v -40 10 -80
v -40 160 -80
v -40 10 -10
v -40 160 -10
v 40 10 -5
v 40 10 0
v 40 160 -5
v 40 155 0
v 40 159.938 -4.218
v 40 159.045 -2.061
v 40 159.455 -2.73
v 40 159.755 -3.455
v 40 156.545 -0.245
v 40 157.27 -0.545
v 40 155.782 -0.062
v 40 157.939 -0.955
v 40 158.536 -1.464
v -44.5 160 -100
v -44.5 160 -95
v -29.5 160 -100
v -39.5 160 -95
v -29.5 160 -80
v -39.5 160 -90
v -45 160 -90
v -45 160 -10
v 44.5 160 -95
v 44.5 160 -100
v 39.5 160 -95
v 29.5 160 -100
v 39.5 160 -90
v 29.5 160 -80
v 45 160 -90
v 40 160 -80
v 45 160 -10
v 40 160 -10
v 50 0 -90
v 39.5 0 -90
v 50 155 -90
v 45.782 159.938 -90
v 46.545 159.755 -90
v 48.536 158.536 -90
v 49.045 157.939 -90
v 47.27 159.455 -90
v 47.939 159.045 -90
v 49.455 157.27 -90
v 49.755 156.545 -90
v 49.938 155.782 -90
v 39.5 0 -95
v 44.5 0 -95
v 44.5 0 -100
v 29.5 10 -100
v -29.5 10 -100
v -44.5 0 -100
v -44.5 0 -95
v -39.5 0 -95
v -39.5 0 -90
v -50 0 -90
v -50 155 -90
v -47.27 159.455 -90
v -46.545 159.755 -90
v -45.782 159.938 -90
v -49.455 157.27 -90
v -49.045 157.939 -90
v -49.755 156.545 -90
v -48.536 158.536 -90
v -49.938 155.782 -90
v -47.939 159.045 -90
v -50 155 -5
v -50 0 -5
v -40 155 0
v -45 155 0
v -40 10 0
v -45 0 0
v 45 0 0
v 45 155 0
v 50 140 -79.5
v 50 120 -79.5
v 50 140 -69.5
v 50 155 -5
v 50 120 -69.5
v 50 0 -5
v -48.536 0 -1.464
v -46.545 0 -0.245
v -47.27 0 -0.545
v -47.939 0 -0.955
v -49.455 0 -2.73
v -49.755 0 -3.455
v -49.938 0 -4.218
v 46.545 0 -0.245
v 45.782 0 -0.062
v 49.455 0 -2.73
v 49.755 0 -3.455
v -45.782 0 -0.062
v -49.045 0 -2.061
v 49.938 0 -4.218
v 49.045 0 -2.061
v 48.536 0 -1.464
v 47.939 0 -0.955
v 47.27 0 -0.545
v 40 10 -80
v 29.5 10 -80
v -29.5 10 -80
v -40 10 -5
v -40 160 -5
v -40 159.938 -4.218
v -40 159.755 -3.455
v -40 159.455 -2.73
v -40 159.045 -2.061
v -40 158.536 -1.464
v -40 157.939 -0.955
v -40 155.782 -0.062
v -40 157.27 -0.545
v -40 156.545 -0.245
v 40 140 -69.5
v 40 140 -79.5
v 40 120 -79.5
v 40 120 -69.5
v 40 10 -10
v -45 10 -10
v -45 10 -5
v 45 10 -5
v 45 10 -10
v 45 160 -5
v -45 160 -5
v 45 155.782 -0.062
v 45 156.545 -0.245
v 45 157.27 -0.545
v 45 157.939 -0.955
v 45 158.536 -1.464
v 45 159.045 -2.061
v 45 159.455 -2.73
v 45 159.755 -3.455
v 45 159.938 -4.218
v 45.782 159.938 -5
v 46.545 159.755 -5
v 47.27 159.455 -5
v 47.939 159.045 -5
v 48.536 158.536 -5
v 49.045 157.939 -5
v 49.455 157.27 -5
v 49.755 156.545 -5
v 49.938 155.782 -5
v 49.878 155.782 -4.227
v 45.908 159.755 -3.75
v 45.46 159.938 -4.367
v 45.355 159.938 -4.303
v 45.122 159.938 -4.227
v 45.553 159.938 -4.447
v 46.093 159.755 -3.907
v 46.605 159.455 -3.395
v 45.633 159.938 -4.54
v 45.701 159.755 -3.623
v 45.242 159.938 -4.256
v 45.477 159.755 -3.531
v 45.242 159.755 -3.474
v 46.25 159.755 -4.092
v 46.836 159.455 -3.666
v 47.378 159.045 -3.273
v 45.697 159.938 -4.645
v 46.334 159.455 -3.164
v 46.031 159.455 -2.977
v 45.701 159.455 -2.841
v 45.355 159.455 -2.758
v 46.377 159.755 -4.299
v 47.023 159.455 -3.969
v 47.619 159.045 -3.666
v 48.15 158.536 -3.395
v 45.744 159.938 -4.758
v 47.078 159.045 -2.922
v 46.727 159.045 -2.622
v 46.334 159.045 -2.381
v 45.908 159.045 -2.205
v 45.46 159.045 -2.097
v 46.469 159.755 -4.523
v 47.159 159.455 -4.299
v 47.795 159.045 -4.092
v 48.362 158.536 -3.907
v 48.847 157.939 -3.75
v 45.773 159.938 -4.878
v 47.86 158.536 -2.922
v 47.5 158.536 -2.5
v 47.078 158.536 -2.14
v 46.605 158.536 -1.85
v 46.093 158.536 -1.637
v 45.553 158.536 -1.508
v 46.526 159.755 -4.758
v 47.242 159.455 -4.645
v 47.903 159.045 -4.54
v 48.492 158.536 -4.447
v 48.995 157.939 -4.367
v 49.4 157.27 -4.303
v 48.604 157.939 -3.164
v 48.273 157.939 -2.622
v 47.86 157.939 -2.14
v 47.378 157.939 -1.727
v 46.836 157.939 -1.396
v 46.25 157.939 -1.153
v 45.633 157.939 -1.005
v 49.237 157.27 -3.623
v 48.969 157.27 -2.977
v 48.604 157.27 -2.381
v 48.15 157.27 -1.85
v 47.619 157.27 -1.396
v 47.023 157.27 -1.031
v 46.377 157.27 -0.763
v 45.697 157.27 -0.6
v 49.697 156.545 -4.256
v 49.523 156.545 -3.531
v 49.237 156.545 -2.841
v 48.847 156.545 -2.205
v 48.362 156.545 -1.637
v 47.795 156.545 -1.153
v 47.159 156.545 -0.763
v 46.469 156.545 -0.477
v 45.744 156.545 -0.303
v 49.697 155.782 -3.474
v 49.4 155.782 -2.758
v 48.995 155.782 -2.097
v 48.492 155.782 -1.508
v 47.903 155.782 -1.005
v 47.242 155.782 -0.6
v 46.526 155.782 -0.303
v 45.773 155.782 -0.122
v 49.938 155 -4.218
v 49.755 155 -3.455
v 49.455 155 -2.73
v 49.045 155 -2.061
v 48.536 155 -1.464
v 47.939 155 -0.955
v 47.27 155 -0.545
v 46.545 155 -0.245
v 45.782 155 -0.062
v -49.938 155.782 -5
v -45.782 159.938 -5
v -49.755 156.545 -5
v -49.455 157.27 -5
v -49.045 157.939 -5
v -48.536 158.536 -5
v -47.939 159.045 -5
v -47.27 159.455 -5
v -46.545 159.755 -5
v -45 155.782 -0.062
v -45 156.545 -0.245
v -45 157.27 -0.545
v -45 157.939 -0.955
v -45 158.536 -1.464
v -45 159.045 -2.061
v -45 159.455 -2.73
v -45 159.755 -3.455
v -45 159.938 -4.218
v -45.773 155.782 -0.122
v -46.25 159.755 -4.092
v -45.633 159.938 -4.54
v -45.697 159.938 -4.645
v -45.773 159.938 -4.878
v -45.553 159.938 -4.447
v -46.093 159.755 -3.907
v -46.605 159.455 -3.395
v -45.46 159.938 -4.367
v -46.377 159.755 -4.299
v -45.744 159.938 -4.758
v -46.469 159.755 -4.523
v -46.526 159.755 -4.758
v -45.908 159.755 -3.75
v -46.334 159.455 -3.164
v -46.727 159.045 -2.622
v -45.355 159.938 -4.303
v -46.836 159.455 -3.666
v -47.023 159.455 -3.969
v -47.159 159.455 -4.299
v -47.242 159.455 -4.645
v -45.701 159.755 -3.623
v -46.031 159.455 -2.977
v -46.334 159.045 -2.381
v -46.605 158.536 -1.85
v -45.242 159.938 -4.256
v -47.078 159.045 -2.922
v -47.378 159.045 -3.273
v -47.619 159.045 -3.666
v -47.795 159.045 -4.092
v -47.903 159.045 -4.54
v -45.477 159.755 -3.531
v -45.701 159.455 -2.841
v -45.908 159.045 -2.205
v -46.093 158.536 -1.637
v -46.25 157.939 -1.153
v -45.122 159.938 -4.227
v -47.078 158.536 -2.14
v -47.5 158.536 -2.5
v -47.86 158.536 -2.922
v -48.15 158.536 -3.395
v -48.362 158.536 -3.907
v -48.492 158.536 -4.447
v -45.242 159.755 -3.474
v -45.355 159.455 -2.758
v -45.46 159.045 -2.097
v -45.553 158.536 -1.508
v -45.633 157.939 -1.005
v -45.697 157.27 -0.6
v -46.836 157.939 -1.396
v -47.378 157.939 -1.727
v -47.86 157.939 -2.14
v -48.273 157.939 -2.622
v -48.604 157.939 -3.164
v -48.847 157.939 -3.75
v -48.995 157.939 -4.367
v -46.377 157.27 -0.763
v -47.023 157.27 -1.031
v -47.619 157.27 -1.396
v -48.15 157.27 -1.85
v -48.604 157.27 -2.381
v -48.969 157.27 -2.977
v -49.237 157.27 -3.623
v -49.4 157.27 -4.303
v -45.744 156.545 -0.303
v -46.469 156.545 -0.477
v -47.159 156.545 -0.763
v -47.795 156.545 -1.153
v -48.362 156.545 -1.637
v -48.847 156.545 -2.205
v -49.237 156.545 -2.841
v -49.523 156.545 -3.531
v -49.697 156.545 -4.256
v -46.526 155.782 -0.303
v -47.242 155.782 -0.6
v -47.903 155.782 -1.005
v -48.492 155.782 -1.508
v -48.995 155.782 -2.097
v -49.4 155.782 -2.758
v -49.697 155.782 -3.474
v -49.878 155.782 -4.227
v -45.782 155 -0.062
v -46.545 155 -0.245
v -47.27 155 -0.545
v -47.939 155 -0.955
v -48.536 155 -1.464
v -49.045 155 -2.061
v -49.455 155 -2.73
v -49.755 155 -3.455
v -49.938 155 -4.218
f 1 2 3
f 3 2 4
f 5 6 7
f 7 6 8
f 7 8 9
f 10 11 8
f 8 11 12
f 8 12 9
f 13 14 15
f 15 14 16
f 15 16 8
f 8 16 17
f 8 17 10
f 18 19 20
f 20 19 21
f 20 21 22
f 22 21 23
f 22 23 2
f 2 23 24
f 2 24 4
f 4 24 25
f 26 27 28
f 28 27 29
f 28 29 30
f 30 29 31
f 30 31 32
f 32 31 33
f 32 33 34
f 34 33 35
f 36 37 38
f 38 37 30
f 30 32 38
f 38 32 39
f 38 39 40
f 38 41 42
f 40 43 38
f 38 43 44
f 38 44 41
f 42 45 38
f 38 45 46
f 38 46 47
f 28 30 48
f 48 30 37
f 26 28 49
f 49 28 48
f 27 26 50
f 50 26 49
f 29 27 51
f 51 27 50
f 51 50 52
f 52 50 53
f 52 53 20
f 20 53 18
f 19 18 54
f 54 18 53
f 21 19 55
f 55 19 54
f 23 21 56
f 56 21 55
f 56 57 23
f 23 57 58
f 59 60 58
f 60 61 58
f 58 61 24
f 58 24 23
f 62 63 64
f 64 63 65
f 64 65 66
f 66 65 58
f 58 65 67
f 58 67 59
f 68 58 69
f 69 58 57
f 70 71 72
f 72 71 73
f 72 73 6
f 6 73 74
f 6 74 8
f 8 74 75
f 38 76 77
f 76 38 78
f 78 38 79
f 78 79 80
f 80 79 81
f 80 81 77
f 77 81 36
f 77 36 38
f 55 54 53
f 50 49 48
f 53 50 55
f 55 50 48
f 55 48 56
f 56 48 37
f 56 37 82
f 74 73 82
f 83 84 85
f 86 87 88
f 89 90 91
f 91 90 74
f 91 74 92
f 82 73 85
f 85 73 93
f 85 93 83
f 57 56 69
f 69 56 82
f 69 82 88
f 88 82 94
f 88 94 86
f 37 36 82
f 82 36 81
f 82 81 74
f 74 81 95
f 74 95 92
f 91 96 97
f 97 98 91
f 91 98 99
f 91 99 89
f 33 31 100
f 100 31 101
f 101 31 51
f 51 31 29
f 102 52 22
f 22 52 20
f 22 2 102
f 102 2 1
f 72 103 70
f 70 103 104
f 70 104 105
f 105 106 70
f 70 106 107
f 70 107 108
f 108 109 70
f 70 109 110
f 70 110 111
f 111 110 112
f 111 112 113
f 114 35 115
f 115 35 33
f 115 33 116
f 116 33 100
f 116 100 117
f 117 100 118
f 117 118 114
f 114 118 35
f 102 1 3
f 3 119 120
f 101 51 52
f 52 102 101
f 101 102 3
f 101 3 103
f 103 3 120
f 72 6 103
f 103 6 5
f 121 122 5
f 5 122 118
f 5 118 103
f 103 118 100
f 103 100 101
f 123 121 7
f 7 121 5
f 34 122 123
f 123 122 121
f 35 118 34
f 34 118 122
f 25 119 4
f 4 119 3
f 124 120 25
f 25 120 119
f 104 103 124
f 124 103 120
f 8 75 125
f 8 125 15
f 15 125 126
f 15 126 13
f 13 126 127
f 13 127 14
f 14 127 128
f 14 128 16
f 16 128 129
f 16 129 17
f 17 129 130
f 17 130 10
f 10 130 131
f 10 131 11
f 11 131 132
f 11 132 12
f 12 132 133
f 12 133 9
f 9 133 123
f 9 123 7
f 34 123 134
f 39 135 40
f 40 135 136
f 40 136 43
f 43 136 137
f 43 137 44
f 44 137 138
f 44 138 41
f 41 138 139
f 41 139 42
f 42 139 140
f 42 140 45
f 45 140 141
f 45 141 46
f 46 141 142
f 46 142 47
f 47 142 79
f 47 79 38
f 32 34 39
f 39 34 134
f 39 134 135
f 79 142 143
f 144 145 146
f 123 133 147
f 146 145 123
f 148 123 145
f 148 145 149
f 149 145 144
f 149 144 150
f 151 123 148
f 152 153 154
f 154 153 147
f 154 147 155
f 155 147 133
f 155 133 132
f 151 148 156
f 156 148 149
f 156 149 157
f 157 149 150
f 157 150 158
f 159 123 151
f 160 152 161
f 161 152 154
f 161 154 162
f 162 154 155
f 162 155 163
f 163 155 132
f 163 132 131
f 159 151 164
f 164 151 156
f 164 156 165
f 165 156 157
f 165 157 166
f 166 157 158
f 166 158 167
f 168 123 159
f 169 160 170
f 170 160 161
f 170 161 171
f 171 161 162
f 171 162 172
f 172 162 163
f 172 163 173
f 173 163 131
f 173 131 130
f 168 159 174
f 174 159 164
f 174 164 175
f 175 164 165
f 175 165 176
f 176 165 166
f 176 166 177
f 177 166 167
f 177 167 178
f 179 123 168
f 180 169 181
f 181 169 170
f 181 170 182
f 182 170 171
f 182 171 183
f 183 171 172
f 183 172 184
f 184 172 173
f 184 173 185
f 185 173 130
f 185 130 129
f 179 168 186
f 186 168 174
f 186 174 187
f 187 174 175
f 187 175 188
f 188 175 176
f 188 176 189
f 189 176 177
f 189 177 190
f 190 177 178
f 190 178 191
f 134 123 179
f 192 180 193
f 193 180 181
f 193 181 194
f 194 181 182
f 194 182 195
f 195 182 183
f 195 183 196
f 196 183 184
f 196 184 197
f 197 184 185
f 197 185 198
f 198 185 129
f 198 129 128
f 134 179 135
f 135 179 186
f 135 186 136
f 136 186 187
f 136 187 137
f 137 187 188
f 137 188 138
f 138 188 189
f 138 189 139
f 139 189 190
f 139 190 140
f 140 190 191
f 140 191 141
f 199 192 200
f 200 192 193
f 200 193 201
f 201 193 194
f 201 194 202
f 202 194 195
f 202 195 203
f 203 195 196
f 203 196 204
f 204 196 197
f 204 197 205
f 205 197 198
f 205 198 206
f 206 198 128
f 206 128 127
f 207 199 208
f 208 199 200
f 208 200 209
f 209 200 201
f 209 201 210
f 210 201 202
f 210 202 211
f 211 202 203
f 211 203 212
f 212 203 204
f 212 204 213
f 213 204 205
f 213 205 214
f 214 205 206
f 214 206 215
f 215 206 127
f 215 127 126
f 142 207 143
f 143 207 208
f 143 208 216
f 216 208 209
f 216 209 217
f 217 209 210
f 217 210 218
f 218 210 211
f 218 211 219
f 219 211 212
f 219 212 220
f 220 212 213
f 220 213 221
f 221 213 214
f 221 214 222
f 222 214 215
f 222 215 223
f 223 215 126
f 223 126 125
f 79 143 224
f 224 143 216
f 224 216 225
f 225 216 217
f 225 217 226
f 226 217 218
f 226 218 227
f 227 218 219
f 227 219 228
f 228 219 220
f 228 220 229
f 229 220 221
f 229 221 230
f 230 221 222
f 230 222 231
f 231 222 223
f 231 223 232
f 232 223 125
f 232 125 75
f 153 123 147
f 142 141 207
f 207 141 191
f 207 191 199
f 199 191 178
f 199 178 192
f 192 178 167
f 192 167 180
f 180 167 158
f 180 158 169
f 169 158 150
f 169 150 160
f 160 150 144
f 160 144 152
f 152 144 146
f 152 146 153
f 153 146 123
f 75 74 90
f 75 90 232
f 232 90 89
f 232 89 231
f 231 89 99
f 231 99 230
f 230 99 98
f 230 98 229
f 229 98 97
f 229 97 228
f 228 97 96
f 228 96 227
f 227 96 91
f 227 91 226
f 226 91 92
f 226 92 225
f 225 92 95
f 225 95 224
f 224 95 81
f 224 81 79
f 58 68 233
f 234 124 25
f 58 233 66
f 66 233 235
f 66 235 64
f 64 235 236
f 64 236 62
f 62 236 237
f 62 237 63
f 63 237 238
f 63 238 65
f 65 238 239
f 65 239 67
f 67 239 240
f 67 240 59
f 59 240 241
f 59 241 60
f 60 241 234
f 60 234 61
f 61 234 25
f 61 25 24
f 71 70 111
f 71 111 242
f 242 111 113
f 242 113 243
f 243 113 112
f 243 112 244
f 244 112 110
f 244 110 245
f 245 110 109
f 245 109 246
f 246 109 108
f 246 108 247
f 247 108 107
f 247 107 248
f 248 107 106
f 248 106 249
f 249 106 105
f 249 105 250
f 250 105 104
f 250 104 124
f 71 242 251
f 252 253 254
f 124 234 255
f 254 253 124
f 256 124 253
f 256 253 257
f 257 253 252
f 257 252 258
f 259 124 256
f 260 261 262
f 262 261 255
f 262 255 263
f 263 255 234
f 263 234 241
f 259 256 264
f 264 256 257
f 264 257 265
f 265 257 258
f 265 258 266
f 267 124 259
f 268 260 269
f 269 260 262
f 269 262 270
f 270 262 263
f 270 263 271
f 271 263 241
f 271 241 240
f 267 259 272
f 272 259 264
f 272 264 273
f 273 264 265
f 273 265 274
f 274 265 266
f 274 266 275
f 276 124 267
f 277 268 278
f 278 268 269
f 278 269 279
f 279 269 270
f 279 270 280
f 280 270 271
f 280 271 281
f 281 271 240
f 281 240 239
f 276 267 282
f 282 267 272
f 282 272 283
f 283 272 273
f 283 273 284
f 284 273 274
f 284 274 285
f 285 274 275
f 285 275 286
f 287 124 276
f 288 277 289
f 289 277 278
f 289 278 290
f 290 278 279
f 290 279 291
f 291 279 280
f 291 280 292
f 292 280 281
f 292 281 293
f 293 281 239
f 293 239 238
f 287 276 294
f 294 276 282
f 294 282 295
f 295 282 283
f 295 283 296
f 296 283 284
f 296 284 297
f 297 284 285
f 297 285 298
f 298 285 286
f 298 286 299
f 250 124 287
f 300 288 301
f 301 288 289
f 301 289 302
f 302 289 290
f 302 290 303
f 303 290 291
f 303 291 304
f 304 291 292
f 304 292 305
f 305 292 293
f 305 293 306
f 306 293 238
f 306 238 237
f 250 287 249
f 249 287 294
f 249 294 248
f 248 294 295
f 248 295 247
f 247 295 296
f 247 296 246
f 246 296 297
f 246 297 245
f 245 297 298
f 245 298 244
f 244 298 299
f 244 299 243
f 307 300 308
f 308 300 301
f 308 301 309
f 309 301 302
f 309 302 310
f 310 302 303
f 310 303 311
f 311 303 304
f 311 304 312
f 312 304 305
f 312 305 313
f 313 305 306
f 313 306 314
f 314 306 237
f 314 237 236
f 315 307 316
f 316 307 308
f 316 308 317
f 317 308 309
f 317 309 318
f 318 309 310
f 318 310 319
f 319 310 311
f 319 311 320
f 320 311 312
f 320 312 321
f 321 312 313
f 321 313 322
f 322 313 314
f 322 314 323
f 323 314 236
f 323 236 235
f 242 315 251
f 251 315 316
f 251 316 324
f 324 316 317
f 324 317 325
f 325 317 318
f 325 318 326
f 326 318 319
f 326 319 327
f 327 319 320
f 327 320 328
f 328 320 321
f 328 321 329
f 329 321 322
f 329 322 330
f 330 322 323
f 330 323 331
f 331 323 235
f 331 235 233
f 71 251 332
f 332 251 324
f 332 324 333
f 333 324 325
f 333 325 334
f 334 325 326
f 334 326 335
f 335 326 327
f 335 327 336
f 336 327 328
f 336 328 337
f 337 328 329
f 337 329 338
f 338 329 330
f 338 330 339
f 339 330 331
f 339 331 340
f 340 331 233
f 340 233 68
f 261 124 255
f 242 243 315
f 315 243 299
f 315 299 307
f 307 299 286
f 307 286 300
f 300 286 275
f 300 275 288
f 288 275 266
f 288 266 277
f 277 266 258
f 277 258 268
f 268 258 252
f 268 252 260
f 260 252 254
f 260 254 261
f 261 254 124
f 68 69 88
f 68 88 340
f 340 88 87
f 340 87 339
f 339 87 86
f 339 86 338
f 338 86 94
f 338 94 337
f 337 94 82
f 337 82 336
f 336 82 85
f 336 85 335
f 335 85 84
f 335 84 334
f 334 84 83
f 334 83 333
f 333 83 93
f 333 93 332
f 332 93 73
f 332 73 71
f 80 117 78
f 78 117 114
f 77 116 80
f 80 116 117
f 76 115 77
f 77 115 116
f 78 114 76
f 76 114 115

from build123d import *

# Parameters (mm, degrees)
BOSS_EXTRUDE1_DEPTH = 160
SHELL1_START        = -80
SHELL1_OUTLINE_W    = 80
SHELL1_OUTLINE_H    = 150
SHELL1_DEPTH        = 80
SHELL1_START_2      = -100
SHELL1_2_OUTLINE_W  = 59
SHELL1_2_OUTLINE_H  = 150
SHELL1_2_DEPTH      = 20
SKETCH2_W           = 5
SKETCH2_H           = 5
CUT_EXTRUDE1_DEPTH  = 150
FILLET1_R           = 5
SKETCH4_W           = 10
SKETCH4_H           = 20
CUT_EXTRUDE2_DEPTH  = 10


# Read off the part's stored shape, not the designer's step: Shell1
with BuildPart() as part:
    # Sketch1 → Boss-Extrude1 (new body)
    with BuildSketch(Plane(origin=(0, 0, 0), x_dir=(1, 0, 0), z_dir=(0, 1, 0))):
        Polygon((50, 0), (-50, 0), (-50, 90), (-39.5, 90), (-39.5, 95), (-44.5, 95), (-44.5, 100), (44.5, 100), (44.5, 95), (39.5, 95), (39.5, 90), (50, 90), align=None)
    extrude(amount=BOSS_EXTRUDE1_DEPTH)

    # Shell1 outline → Shell1 (cut)
    with BuildSketch(Plane.XY.offset(SHELL1_START)):
        with Locations((0, 85)):
            Rectangle(SHELL1_OUTLINE_W, SHELL1_OUTLINE_H)
    extrude(amount=SHELL1_DEPTH, mode=Mode.SUBTRACT)

    # Shell1 2 outline → Shell1 2 (cut)
    with BuildSketch(Plane.XY.offset(SHELL1_START_2)):
        with Locations((0, 85)):
            Rectangle(SHELL1_2_OUTLINE_W, SHELL1_2_OUTLINE_H)
    extrude(amount=SHELL1_2_DEPTH, mode=Mode.SUBTRACT)

    # Sketch2 → Cut-Extrude1 (cut)
    with BuildSketch(Plane(origin=(0, 160, 0), x_dir=(1, 0, 0), z_dir=(0, 1, 0))):
        with Locations((-42.5, 7.5)):
            Rectangle(SKETCH2_W, SKETCH2_H)
        with Locations((42.5, 7.5)):
            Rectangle(SKETCH2_W, SKETCH2_H)
    extrude(amount=-CUT_EXTRUDE1_DEPTH, mode=Mode.SUBTRACT)

    # Fillet1
    fillet1_edges = [part.edges().sort_by_distance(p)[0] for p in [
        (45, 160, 0),
        (-45, 160, 0),
        (50, 160, -45),
        (-50, 160, -45),
        (50, 80, 0),
        (-50, 80, 0),
    ]]
    fillet(fillet1_edges, radius=FILLET1_R - 0.0001)  # a hair under: the kernel refuses the full size

    # Sketch4 → Cut-Extrude2 (cut)
    with BuildSketch(Plane(origin=(50, 0, 0), x_dir=(0, 0, -1), z_dir=(1, 0, 0))):
        with Locations((74.5, 130)):
            Rectangle(SKETCH4_W, SKETCH4_H)
    extrude(amount=-CUT_EXTRUDE2_DEPTH, mode=Mode.SUBTRACT)


solid = part.part
